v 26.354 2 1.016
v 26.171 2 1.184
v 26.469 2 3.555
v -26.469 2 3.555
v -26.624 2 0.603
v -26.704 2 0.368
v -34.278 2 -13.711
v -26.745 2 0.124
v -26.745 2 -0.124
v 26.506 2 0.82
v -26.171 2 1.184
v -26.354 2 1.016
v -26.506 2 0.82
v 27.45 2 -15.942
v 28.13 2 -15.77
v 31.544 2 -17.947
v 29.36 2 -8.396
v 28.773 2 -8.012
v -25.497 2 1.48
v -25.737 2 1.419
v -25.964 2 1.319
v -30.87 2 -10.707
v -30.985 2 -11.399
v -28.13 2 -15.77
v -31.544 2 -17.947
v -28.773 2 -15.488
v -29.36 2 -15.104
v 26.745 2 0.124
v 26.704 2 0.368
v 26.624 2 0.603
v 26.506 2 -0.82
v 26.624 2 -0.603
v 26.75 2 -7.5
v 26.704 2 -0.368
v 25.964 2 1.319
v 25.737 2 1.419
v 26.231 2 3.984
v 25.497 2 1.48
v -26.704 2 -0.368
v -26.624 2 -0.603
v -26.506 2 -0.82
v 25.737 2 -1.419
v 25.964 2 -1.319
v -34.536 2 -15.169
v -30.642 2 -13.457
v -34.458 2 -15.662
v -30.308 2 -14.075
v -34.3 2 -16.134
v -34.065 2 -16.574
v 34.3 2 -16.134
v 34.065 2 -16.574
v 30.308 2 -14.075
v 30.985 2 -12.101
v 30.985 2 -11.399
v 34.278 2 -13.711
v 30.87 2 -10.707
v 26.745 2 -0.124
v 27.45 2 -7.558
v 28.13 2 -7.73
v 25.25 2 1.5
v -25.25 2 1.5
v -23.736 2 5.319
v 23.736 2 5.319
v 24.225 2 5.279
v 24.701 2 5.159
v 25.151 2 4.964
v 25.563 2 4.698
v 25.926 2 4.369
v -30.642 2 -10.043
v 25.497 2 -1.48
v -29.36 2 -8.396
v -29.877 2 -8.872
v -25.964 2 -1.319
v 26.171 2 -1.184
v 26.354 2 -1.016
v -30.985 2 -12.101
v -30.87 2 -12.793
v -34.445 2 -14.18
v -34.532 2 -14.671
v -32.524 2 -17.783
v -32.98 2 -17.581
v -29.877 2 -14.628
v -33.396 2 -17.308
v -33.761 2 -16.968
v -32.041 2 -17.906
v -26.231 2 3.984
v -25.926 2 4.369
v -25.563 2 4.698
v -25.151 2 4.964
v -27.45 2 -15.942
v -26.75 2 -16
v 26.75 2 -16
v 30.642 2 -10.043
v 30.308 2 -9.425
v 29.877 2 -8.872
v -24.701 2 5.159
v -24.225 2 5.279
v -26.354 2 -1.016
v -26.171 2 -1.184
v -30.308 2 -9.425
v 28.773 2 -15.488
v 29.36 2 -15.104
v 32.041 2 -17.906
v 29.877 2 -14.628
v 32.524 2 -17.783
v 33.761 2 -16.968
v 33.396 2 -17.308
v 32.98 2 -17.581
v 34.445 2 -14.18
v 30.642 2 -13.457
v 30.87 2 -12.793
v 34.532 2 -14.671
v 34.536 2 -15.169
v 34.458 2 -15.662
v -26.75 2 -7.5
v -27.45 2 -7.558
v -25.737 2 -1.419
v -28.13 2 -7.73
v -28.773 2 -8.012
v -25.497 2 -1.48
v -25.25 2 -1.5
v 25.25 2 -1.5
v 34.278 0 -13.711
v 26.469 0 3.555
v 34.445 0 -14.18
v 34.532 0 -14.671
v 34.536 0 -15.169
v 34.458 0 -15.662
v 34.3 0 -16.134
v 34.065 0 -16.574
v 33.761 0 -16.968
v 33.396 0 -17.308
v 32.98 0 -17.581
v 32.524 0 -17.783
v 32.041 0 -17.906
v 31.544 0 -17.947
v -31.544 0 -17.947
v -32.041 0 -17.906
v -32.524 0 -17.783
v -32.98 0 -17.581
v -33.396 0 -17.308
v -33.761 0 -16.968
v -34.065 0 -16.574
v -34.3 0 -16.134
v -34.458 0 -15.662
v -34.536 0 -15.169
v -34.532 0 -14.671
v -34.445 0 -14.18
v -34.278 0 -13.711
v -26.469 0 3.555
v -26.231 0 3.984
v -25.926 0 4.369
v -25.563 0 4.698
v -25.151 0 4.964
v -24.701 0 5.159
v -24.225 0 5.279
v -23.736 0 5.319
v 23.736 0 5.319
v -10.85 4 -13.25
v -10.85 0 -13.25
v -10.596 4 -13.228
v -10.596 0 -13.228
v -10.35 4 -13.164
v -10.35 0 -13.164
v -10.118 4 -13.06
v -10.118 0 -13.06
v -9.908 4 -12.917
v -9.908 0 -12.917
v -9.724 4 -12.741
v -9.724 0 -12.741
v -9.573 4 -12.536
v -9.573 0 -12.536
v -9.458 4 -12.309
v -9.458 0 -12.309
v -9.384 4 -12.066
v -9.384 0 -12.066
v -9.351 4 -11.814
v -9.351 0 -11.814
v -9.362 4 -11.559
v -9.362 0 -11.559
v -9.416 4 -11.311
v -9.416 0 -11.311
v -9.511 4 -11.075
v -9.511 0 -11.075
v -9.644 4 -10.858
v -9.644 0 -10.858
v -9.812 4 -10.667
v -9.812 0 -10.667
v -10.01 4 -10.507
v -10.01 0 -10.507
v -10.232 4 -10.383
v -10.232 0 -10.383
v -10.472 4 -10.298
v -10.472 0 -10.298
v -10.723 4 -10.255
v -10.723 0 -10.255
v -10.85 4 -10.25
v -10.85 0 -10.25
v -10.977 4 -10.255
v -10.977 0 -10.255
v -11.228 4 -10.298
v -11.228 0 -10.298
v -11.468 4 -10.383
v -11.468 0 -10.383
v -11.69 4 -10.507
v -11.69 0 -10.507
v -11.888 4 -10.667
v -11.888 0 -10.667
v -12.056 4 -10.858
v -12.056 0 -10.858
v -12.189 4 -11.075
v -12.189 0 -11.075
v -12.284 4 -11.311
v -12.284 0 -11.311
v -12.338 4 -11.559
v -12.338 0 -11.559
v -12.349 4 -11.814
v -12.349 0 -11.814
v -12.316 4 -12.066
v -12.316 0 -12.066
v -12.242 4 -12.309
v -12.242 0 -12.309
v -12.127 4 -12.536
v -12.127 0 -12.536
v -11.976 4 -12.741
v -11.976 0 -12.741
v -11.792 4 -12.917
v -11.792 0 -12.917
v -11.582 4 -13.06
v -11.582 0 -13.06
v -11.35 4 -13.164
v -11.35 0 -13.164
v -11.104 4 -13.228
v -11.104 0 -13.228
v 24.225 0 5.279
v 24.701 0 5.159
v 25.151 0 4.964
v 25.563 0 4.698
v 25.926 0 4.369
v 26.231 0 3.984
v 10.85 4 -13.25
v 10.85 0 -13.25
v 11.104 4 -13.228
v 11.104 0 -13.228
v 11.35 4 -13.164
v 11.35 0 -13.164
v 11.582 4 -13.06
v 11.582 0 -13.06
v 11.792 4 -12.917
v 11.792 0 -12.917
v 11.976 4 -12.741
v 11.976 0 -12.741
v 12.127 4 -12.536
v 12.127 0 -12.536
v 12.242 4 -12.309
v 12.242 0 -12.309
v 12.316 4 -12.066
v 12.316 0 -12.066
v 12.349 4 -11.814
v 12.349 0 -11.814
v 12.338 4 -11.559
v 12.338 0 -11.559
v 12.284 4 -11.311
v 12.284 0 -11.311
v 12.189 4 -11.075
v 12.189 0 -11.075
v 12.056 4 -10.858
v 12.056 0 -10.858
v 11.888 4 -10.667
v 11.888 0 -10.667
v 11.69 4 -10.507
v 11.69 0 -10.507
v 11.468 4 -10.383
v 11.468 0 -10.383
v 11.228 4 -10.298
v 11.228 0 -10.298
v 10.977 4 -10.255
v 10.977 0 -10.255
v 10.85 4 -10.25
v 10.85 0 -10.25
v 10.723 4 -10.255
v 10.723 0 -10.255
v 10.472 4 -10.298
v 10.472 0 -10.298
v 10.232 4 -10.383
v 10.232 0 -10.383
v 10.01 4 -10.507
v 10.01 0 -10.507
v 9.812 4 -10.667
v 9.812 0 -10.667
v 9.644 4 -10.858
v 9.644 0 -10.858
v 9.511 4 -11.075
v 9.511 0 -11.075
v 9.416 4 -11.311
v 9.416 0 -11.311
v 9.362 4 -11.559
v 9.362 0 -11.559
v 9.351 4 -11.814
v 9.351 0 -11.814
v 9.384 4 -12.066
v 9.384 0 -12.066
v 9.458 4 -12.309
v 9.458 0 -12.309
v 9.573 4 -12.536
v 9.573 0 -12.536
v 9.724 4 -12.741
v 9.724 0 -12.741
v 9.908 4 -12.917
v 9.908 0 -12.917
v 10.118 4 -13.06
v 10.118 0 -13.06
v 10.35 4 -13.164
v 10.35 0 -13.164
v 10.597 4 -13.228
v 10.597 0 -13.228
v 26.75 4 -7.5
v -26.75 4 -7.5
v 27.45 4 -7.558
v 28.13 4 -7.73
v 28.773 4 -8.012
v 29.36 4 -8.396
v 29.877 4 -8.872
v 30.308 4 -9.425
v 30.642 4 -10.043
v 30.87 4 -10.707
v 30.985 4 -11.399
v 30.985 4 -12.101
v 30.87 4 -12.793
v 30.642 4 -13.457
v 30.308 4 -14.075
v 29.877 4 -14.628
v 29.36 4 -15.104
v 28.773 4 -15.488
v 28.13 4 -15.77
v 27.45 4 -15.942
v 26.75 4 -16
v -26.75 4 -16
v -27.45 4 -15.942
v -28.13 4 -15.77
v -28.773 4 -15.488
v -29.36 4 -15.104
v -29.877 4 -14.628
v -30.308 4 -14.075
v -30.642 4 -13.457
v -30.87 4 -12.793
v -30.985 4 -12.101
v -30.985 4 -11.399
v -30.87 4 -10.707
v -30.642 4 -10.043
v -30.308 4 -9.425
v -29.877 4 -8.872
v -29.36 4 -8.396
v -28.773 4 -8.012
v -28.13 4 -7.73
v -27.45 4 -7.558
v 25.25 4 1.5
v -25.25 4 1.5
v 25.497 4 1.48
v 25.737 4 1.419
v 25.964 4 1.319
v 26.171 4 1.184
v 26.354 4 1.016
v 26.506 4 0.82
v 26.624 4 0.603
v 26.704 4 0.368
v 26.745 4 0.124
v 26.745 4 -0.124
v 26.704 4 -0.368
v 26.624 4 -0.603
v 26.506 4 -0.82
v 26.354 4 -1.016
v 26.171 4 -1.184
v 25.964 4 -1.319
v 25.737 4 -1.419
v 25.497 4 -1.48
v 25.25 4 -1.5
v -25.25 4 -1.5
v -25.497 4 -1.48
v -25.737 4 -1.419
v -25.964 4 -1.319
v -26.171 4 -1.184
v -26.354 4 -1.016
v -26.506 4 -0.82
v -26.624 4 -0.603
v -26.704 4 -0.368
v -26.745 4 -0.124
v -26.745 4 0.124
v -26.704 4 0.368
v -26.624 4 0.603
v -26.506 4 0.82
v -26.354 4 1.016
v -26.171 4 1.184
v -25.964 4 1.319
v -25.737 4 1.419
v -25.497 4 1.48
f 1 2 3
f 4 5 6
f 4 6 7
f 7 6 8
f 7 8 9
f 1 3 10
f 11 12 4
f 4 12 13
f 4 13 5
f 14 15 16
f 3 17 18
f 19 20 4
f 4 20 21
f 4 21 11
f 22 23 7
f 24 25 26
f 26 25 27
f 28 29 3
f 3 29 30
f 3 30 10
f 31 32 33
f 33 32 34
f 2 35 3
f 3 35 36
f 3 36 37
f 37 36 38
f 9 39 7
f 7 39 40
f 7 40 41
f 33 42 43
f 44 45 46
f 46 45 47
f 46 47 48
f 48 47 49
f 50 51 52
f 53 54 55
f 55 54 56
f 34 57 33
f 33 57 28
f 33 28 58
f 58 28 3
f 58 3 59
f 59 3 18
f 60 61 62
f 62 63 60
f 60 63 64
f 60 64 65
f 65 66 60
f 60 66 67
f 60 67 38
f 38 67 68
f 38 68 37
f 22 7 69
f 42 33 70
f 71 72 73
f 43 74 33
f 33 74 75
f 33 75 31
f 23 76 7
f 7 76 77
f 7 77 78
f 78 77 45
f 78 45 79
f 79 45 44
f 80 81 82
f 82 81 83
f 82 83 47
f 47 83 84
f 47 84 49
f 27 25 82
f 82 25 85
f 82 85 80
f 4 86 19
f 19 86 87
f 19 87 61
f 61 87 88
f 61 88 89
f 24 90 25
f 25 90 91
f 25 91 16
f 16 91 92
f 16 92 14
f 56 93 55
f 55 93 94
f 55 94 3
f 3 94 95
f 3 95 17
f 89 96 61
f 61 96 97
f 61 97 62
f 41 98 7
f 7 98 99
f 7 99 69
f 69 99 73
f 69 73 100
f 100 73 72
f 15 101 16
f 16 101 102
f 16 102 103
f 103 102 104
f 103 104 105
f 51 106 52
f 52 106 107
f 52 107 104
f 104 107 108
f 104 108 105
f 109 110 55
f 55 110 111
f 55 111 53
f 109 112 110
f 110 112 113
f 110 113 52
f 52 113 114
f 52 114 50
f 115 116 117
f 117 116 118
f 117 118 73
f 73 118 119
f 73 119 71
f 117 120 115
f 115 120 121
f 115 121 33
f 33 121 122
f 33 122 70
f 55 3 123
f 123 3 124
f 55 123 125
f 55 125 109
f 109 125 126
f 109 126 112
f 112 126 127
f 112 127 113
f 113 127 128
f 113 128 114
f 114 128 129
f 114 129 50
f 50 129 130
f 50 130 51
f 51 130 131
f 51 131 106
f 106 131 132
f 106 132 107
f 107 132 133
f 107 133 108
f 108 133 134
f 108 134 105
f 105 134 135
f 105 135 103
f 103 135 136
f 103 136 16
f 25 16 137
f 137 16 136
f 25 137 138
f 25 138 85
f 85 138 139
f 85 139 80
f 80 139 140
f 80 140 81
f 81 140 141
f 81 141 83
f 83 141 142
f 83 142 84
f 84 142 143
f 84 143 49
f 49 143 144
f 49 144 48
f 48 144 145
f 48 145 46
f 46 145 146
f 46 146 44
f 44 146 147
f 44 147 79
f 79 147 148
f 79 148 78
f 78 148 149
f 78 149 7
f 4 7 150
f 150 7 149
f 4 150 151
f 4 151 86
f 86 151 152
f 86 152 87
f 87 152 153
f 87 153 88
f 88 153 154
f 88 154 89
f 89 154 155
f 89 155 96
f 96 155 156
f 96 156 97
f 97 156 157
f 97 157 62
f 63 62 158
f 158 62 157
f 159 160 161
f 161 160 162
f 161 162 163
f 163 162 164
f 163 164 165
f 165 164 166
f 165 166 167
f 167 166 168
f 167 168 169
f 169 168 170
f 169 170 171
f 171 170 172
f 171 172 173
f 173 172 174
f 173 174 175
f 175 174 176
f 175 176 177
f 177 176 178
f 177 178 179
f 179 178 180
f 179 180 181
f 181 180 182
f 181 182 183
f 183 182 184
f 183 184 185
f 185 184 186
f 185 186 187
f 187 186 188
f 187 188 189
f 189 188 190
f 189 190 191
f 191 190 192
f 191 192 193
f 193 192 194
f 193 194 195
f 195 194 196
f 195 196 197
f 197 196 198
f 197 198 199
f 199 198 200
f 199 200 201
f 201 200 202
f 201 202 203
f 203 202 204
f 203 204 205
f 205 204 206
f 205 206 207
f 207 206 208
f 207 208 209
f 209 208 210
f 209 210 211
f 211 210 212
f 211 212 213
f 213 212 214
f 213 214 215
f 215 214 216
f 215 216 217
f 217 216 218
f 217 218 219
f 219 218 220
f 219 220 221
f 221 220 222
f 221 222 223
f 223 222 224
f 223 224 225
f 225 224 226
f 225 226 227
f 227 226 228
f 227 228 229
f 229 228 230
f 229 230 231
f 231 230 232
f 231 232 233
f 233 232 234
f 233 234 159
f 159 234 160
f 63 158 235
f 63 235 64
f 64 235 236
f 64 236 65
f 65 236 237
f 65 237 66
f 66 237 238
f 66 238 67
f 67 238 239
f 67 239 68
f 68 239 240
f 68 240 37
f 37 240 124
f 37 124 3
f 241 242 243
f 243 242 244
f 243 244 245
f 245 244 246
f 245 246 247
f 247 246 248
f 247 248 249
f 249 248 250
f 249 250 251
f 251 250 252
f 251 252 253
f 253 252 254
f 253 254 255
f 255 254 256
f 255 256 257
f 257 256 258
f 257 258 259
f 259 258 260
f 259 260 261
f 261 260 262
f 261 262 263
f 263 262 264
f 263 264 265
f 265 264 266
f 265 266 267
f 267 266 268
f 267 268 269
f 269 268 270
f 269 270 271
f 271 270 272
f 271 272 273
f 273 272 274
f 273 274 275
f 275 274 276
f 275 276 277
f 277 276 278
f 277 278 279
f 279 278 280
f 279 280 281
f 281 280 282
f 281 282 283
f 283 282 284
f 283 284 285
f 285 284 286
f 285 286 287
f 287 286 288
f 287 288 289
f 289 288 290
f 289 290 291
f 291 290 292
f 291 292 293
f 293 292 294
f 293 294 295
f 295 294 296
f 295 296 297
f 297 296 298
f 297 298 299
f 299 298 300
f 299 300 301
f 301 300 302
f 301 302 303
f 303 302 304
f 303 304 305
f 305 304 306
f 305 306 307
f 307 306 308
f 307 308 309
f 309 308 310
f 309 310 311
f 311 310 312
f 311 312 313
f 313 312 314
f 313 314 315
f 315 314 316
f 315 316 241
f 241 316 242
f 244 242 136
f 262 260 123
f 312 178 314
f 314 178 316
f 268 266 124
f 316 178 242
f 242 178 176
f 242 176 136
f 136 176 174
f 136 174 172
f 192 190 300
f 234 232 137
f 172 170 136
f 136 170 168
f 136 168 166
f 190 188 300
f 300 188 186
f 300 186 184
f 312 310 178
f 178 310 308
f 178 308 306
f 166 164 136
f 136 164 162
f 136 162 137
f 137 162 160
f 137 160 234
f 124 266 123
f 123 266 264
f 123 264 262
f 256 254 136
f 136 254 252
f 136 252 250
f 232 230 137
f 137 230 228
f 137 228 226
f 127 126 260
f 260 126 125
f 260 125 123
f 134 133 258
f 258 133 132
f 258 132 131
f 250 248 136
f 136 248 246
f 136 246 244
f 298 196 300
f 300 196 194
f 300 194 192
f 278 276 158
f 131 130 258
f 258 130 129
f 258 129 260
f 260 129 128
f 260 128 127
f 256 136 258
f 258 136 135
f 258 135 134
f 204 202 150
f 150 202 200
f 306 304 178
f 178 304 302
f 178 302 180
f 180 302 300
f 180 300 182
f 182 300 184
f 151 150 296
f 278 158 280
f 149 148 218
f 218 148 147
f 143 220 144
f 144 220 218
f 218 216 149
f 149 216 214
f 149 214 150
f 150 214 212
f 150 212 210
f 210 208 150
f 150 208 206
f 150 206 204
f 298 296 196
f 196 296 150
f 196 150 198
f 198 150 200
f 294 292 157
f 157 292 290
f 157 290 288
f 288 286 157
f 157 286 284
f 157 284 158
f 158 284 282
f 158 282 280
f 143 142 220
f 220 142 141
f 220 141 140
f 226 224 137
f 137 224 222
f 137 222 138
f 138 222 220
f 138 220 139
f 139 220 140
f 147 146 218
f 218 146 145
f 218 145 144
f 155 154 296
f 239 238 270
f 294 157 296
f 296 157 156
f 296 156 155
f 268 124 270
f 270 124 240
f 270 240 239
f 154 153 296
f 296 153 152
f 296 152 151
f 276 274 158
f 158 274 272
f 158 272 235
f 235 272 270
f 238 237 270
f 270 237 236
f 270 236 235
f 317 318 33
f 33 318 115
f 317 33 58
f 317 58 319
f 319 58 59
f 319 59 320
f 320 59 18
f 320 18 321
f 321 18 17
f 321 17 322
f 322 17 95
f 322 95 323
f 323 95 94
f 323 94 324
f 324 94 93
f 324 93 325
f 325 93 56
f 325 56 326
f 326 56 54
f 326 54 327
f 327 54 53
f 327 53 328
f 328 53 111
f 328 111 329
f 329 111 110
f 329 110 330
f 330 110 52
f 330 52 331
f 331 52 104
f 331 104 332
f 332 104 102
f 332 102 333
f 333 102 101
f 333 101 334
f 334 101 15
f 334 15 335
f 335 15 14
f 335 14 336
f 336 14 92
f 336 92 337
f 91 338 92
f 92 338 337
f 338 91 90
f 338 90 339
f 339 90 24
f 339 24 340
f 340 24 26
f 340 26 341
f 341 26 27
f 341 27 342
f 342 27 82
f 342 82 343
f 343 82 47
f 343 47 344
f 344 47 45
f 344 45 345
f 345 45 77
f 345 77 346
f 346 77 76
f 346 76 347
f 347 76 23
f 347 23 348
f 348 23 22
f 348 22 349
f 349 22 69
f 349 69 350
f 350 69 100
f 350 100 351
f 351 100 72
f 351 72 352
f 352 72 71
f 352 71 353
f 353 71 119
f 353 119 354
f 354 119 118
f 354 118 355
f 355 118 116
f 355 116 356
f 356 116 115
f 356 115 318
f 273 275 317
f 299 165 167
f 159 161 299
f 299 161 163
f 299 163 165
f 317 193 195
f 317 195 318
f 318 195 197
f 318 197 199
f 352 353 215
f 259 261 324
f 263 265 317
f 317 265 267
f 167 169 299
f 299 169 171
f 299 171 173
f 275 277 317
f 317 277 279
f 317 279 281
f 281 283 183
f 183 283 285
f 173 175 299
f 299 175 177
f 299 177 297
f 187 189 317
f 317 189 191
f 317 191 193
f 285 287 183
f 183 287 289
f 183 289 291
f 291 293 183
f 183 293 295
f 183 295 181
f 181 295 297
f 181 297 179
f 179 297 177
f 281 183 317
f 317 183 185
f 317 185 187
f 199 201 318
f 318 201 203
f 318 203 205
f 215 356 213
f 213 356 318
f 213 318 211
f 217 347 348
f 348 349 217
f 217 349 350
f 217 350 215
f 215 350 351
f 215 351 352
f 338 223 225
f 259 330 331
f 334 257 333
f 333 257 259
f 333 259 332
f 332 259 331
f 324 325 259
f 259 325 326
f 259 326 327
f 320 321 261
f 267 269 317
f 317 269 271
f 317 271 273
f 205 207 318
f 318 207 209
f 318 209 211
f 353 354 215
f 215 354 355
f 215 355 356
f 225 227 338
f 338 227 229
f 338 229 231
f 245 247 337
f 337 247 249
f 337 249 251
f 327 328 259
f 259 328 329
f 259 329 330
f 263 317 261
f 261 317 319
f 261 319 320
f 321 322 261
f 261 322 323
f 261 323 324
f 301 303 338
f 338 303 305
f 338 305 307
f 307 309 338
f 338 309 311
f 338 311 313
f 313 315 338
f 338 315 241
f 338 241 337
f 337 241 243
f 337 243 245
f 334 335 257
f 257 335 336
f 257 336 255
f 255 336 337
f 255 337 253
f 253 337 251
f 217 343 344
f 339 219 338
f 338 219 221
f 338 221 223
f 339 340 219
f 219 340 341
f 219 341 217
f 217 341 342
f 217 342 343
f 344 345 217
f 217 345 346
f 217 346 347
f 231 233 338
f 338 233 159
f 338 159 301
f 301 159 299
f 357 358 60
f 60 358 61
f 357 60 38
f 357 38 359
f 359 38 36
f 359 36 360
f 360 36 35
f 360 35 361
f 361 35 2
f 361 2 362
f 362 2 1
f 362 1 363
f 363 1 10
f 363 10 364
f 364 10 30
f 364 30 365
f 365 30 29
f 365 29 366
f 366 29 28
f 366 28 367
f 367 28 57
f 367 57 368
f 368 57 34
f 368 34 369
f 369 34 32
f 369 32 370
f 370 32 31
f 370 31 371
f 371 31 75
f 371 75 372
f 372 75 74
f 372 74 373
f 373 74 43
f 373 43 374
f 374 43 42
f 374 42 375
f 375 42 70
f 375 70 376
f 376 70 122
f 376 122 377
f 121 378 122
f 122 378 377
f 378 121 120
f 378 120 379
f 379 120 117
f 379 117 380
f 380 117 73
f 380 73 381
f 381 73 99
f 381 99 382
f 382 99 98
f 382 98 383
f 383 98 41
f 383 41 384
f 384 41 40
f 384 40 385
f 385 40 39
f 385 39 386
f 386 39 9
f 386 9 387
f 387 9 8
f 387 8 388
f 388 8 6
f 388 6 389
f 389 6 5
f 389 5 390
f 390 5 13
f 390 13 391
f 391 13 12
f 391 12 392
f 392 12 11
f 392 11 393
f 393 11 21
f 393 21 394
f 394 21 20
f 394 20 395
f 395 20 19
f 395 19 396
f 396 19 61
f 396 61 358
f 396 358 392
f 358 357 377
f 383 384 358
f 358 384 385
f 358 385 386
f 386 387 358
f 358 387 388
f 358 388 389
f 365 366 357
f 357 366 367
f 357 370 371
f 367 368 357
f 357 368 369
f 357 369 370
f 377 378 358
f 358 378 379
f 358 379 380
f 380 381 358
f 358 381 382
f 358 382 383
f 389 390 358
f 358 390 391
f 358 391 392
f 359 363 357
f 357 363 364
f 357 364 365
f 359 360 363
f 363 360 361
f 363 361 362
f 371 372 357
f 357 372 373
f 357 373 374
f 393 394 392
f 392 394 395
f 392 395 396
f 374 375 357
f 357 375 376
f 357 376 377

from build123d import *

# Parameters (mm, degrees)
SKETCH_1_R      = 1.5
EXTRUDE_1_DEPTH = 2
SKETCH_1_3_R    = 1.5
EXTRUDE_2_DEPTH = 4


with BuildPart() as part:
    # 草图1 → 凸台-拉伸1 (new body)
    with BuildSketch(Plane(origin=(0, 0, 0), x_dir=(1, 0, 0), z_dir=(0, 1, 0))):
        with BuildLine():
            Line((-23.735839254, -5.318814311), (23.735839254, -5.318814311))
            ThreePointArc((23.735839254, -5.318814311), (25.362389906, -4.839594543), (26.469290407, -3.555036294))
            Line((26.469290407, -3.555036294), (34.277924852, 13.710892585))
            ThreePointArc((34.277924852, 13.710892585), (34.06525393, 16.57366522), (31.544473698, 17.947114568))
            Line((31.544473698, 17.947114568), (-31.544473698, 17.947114568))
            ThreePointArc((-31.544473698, 17.947114568), (-34.06525393, 16.57366522), (-34.277924852, 13.710892585))
            Line((-34.277924852, 13.710892585), (-26.469290407, -3.555036294))
            ThreePointArc((-26.469290407, -3.555036294), (-25.362389906, -4.839594543), (-23.735839254, -5.318814311))
        make_face()
        with Locations((-10.85, 11.75)):
            Circle(SKETCH_1_R, mode=Mode.SUBTRACT)
        with Locations((10.85, 11.75)):
            Circle(SKETCH_1_R, mode=Mode.SUBTRACT)
    extrude(amount=EXTRUDE_1_DEPTH)

    # 草图1<3> → 凸台-拉伸2 (add)
    # profile 1 of 2: a face of its own
    with BuildSketch(Plane(origin=(0, 0, 0), x_dir=(1, 0, 0), z_dir=(0, 1, 0))):
        with BuildLine():
            Line((26.75, 16), (-26.75, 16))
            ThreePointArc((-26.75, 16), (-31, 11.75), (-26.75, 7.5))
            Line((-26.75, 7.5), (26.75, 7.5))
            ThreePointArc((26.75, 7.5), (31, 11.75), (26.75, 16))
        make_face()
        with Locations((-10.85, 11.75)):
            Circle(SKETCH_1_3_R, mode=Mode.SUBTRACT)
        with Locations((10.85, 11.75)):
            Circle(SKETCH_1_3_R, mode=Mode.SUBTRACT)
    # profile 2 of 2: a face of its own
    with BuildSketch(Plane(origin=(0, 0, 0), x_dir=(1, 0, 0), z_dir=(0, 1, 0))):
        with BuildLine():
            ThreePointArc((-25.25, 1.5), (-26.75, 0), (-25.25, -1.5))
            Line((-25.25, -1.5), (25.25, -1.5))
            ThreePointArc((25.25, -1.5), (26.75, 0), (25.25, 1.5))
            Line((25.25, 1.5), (-25.25, 1.5))
        make_face()
    extrude(amount=EXTRUDE_2_DEPTH)


solid = part.part
